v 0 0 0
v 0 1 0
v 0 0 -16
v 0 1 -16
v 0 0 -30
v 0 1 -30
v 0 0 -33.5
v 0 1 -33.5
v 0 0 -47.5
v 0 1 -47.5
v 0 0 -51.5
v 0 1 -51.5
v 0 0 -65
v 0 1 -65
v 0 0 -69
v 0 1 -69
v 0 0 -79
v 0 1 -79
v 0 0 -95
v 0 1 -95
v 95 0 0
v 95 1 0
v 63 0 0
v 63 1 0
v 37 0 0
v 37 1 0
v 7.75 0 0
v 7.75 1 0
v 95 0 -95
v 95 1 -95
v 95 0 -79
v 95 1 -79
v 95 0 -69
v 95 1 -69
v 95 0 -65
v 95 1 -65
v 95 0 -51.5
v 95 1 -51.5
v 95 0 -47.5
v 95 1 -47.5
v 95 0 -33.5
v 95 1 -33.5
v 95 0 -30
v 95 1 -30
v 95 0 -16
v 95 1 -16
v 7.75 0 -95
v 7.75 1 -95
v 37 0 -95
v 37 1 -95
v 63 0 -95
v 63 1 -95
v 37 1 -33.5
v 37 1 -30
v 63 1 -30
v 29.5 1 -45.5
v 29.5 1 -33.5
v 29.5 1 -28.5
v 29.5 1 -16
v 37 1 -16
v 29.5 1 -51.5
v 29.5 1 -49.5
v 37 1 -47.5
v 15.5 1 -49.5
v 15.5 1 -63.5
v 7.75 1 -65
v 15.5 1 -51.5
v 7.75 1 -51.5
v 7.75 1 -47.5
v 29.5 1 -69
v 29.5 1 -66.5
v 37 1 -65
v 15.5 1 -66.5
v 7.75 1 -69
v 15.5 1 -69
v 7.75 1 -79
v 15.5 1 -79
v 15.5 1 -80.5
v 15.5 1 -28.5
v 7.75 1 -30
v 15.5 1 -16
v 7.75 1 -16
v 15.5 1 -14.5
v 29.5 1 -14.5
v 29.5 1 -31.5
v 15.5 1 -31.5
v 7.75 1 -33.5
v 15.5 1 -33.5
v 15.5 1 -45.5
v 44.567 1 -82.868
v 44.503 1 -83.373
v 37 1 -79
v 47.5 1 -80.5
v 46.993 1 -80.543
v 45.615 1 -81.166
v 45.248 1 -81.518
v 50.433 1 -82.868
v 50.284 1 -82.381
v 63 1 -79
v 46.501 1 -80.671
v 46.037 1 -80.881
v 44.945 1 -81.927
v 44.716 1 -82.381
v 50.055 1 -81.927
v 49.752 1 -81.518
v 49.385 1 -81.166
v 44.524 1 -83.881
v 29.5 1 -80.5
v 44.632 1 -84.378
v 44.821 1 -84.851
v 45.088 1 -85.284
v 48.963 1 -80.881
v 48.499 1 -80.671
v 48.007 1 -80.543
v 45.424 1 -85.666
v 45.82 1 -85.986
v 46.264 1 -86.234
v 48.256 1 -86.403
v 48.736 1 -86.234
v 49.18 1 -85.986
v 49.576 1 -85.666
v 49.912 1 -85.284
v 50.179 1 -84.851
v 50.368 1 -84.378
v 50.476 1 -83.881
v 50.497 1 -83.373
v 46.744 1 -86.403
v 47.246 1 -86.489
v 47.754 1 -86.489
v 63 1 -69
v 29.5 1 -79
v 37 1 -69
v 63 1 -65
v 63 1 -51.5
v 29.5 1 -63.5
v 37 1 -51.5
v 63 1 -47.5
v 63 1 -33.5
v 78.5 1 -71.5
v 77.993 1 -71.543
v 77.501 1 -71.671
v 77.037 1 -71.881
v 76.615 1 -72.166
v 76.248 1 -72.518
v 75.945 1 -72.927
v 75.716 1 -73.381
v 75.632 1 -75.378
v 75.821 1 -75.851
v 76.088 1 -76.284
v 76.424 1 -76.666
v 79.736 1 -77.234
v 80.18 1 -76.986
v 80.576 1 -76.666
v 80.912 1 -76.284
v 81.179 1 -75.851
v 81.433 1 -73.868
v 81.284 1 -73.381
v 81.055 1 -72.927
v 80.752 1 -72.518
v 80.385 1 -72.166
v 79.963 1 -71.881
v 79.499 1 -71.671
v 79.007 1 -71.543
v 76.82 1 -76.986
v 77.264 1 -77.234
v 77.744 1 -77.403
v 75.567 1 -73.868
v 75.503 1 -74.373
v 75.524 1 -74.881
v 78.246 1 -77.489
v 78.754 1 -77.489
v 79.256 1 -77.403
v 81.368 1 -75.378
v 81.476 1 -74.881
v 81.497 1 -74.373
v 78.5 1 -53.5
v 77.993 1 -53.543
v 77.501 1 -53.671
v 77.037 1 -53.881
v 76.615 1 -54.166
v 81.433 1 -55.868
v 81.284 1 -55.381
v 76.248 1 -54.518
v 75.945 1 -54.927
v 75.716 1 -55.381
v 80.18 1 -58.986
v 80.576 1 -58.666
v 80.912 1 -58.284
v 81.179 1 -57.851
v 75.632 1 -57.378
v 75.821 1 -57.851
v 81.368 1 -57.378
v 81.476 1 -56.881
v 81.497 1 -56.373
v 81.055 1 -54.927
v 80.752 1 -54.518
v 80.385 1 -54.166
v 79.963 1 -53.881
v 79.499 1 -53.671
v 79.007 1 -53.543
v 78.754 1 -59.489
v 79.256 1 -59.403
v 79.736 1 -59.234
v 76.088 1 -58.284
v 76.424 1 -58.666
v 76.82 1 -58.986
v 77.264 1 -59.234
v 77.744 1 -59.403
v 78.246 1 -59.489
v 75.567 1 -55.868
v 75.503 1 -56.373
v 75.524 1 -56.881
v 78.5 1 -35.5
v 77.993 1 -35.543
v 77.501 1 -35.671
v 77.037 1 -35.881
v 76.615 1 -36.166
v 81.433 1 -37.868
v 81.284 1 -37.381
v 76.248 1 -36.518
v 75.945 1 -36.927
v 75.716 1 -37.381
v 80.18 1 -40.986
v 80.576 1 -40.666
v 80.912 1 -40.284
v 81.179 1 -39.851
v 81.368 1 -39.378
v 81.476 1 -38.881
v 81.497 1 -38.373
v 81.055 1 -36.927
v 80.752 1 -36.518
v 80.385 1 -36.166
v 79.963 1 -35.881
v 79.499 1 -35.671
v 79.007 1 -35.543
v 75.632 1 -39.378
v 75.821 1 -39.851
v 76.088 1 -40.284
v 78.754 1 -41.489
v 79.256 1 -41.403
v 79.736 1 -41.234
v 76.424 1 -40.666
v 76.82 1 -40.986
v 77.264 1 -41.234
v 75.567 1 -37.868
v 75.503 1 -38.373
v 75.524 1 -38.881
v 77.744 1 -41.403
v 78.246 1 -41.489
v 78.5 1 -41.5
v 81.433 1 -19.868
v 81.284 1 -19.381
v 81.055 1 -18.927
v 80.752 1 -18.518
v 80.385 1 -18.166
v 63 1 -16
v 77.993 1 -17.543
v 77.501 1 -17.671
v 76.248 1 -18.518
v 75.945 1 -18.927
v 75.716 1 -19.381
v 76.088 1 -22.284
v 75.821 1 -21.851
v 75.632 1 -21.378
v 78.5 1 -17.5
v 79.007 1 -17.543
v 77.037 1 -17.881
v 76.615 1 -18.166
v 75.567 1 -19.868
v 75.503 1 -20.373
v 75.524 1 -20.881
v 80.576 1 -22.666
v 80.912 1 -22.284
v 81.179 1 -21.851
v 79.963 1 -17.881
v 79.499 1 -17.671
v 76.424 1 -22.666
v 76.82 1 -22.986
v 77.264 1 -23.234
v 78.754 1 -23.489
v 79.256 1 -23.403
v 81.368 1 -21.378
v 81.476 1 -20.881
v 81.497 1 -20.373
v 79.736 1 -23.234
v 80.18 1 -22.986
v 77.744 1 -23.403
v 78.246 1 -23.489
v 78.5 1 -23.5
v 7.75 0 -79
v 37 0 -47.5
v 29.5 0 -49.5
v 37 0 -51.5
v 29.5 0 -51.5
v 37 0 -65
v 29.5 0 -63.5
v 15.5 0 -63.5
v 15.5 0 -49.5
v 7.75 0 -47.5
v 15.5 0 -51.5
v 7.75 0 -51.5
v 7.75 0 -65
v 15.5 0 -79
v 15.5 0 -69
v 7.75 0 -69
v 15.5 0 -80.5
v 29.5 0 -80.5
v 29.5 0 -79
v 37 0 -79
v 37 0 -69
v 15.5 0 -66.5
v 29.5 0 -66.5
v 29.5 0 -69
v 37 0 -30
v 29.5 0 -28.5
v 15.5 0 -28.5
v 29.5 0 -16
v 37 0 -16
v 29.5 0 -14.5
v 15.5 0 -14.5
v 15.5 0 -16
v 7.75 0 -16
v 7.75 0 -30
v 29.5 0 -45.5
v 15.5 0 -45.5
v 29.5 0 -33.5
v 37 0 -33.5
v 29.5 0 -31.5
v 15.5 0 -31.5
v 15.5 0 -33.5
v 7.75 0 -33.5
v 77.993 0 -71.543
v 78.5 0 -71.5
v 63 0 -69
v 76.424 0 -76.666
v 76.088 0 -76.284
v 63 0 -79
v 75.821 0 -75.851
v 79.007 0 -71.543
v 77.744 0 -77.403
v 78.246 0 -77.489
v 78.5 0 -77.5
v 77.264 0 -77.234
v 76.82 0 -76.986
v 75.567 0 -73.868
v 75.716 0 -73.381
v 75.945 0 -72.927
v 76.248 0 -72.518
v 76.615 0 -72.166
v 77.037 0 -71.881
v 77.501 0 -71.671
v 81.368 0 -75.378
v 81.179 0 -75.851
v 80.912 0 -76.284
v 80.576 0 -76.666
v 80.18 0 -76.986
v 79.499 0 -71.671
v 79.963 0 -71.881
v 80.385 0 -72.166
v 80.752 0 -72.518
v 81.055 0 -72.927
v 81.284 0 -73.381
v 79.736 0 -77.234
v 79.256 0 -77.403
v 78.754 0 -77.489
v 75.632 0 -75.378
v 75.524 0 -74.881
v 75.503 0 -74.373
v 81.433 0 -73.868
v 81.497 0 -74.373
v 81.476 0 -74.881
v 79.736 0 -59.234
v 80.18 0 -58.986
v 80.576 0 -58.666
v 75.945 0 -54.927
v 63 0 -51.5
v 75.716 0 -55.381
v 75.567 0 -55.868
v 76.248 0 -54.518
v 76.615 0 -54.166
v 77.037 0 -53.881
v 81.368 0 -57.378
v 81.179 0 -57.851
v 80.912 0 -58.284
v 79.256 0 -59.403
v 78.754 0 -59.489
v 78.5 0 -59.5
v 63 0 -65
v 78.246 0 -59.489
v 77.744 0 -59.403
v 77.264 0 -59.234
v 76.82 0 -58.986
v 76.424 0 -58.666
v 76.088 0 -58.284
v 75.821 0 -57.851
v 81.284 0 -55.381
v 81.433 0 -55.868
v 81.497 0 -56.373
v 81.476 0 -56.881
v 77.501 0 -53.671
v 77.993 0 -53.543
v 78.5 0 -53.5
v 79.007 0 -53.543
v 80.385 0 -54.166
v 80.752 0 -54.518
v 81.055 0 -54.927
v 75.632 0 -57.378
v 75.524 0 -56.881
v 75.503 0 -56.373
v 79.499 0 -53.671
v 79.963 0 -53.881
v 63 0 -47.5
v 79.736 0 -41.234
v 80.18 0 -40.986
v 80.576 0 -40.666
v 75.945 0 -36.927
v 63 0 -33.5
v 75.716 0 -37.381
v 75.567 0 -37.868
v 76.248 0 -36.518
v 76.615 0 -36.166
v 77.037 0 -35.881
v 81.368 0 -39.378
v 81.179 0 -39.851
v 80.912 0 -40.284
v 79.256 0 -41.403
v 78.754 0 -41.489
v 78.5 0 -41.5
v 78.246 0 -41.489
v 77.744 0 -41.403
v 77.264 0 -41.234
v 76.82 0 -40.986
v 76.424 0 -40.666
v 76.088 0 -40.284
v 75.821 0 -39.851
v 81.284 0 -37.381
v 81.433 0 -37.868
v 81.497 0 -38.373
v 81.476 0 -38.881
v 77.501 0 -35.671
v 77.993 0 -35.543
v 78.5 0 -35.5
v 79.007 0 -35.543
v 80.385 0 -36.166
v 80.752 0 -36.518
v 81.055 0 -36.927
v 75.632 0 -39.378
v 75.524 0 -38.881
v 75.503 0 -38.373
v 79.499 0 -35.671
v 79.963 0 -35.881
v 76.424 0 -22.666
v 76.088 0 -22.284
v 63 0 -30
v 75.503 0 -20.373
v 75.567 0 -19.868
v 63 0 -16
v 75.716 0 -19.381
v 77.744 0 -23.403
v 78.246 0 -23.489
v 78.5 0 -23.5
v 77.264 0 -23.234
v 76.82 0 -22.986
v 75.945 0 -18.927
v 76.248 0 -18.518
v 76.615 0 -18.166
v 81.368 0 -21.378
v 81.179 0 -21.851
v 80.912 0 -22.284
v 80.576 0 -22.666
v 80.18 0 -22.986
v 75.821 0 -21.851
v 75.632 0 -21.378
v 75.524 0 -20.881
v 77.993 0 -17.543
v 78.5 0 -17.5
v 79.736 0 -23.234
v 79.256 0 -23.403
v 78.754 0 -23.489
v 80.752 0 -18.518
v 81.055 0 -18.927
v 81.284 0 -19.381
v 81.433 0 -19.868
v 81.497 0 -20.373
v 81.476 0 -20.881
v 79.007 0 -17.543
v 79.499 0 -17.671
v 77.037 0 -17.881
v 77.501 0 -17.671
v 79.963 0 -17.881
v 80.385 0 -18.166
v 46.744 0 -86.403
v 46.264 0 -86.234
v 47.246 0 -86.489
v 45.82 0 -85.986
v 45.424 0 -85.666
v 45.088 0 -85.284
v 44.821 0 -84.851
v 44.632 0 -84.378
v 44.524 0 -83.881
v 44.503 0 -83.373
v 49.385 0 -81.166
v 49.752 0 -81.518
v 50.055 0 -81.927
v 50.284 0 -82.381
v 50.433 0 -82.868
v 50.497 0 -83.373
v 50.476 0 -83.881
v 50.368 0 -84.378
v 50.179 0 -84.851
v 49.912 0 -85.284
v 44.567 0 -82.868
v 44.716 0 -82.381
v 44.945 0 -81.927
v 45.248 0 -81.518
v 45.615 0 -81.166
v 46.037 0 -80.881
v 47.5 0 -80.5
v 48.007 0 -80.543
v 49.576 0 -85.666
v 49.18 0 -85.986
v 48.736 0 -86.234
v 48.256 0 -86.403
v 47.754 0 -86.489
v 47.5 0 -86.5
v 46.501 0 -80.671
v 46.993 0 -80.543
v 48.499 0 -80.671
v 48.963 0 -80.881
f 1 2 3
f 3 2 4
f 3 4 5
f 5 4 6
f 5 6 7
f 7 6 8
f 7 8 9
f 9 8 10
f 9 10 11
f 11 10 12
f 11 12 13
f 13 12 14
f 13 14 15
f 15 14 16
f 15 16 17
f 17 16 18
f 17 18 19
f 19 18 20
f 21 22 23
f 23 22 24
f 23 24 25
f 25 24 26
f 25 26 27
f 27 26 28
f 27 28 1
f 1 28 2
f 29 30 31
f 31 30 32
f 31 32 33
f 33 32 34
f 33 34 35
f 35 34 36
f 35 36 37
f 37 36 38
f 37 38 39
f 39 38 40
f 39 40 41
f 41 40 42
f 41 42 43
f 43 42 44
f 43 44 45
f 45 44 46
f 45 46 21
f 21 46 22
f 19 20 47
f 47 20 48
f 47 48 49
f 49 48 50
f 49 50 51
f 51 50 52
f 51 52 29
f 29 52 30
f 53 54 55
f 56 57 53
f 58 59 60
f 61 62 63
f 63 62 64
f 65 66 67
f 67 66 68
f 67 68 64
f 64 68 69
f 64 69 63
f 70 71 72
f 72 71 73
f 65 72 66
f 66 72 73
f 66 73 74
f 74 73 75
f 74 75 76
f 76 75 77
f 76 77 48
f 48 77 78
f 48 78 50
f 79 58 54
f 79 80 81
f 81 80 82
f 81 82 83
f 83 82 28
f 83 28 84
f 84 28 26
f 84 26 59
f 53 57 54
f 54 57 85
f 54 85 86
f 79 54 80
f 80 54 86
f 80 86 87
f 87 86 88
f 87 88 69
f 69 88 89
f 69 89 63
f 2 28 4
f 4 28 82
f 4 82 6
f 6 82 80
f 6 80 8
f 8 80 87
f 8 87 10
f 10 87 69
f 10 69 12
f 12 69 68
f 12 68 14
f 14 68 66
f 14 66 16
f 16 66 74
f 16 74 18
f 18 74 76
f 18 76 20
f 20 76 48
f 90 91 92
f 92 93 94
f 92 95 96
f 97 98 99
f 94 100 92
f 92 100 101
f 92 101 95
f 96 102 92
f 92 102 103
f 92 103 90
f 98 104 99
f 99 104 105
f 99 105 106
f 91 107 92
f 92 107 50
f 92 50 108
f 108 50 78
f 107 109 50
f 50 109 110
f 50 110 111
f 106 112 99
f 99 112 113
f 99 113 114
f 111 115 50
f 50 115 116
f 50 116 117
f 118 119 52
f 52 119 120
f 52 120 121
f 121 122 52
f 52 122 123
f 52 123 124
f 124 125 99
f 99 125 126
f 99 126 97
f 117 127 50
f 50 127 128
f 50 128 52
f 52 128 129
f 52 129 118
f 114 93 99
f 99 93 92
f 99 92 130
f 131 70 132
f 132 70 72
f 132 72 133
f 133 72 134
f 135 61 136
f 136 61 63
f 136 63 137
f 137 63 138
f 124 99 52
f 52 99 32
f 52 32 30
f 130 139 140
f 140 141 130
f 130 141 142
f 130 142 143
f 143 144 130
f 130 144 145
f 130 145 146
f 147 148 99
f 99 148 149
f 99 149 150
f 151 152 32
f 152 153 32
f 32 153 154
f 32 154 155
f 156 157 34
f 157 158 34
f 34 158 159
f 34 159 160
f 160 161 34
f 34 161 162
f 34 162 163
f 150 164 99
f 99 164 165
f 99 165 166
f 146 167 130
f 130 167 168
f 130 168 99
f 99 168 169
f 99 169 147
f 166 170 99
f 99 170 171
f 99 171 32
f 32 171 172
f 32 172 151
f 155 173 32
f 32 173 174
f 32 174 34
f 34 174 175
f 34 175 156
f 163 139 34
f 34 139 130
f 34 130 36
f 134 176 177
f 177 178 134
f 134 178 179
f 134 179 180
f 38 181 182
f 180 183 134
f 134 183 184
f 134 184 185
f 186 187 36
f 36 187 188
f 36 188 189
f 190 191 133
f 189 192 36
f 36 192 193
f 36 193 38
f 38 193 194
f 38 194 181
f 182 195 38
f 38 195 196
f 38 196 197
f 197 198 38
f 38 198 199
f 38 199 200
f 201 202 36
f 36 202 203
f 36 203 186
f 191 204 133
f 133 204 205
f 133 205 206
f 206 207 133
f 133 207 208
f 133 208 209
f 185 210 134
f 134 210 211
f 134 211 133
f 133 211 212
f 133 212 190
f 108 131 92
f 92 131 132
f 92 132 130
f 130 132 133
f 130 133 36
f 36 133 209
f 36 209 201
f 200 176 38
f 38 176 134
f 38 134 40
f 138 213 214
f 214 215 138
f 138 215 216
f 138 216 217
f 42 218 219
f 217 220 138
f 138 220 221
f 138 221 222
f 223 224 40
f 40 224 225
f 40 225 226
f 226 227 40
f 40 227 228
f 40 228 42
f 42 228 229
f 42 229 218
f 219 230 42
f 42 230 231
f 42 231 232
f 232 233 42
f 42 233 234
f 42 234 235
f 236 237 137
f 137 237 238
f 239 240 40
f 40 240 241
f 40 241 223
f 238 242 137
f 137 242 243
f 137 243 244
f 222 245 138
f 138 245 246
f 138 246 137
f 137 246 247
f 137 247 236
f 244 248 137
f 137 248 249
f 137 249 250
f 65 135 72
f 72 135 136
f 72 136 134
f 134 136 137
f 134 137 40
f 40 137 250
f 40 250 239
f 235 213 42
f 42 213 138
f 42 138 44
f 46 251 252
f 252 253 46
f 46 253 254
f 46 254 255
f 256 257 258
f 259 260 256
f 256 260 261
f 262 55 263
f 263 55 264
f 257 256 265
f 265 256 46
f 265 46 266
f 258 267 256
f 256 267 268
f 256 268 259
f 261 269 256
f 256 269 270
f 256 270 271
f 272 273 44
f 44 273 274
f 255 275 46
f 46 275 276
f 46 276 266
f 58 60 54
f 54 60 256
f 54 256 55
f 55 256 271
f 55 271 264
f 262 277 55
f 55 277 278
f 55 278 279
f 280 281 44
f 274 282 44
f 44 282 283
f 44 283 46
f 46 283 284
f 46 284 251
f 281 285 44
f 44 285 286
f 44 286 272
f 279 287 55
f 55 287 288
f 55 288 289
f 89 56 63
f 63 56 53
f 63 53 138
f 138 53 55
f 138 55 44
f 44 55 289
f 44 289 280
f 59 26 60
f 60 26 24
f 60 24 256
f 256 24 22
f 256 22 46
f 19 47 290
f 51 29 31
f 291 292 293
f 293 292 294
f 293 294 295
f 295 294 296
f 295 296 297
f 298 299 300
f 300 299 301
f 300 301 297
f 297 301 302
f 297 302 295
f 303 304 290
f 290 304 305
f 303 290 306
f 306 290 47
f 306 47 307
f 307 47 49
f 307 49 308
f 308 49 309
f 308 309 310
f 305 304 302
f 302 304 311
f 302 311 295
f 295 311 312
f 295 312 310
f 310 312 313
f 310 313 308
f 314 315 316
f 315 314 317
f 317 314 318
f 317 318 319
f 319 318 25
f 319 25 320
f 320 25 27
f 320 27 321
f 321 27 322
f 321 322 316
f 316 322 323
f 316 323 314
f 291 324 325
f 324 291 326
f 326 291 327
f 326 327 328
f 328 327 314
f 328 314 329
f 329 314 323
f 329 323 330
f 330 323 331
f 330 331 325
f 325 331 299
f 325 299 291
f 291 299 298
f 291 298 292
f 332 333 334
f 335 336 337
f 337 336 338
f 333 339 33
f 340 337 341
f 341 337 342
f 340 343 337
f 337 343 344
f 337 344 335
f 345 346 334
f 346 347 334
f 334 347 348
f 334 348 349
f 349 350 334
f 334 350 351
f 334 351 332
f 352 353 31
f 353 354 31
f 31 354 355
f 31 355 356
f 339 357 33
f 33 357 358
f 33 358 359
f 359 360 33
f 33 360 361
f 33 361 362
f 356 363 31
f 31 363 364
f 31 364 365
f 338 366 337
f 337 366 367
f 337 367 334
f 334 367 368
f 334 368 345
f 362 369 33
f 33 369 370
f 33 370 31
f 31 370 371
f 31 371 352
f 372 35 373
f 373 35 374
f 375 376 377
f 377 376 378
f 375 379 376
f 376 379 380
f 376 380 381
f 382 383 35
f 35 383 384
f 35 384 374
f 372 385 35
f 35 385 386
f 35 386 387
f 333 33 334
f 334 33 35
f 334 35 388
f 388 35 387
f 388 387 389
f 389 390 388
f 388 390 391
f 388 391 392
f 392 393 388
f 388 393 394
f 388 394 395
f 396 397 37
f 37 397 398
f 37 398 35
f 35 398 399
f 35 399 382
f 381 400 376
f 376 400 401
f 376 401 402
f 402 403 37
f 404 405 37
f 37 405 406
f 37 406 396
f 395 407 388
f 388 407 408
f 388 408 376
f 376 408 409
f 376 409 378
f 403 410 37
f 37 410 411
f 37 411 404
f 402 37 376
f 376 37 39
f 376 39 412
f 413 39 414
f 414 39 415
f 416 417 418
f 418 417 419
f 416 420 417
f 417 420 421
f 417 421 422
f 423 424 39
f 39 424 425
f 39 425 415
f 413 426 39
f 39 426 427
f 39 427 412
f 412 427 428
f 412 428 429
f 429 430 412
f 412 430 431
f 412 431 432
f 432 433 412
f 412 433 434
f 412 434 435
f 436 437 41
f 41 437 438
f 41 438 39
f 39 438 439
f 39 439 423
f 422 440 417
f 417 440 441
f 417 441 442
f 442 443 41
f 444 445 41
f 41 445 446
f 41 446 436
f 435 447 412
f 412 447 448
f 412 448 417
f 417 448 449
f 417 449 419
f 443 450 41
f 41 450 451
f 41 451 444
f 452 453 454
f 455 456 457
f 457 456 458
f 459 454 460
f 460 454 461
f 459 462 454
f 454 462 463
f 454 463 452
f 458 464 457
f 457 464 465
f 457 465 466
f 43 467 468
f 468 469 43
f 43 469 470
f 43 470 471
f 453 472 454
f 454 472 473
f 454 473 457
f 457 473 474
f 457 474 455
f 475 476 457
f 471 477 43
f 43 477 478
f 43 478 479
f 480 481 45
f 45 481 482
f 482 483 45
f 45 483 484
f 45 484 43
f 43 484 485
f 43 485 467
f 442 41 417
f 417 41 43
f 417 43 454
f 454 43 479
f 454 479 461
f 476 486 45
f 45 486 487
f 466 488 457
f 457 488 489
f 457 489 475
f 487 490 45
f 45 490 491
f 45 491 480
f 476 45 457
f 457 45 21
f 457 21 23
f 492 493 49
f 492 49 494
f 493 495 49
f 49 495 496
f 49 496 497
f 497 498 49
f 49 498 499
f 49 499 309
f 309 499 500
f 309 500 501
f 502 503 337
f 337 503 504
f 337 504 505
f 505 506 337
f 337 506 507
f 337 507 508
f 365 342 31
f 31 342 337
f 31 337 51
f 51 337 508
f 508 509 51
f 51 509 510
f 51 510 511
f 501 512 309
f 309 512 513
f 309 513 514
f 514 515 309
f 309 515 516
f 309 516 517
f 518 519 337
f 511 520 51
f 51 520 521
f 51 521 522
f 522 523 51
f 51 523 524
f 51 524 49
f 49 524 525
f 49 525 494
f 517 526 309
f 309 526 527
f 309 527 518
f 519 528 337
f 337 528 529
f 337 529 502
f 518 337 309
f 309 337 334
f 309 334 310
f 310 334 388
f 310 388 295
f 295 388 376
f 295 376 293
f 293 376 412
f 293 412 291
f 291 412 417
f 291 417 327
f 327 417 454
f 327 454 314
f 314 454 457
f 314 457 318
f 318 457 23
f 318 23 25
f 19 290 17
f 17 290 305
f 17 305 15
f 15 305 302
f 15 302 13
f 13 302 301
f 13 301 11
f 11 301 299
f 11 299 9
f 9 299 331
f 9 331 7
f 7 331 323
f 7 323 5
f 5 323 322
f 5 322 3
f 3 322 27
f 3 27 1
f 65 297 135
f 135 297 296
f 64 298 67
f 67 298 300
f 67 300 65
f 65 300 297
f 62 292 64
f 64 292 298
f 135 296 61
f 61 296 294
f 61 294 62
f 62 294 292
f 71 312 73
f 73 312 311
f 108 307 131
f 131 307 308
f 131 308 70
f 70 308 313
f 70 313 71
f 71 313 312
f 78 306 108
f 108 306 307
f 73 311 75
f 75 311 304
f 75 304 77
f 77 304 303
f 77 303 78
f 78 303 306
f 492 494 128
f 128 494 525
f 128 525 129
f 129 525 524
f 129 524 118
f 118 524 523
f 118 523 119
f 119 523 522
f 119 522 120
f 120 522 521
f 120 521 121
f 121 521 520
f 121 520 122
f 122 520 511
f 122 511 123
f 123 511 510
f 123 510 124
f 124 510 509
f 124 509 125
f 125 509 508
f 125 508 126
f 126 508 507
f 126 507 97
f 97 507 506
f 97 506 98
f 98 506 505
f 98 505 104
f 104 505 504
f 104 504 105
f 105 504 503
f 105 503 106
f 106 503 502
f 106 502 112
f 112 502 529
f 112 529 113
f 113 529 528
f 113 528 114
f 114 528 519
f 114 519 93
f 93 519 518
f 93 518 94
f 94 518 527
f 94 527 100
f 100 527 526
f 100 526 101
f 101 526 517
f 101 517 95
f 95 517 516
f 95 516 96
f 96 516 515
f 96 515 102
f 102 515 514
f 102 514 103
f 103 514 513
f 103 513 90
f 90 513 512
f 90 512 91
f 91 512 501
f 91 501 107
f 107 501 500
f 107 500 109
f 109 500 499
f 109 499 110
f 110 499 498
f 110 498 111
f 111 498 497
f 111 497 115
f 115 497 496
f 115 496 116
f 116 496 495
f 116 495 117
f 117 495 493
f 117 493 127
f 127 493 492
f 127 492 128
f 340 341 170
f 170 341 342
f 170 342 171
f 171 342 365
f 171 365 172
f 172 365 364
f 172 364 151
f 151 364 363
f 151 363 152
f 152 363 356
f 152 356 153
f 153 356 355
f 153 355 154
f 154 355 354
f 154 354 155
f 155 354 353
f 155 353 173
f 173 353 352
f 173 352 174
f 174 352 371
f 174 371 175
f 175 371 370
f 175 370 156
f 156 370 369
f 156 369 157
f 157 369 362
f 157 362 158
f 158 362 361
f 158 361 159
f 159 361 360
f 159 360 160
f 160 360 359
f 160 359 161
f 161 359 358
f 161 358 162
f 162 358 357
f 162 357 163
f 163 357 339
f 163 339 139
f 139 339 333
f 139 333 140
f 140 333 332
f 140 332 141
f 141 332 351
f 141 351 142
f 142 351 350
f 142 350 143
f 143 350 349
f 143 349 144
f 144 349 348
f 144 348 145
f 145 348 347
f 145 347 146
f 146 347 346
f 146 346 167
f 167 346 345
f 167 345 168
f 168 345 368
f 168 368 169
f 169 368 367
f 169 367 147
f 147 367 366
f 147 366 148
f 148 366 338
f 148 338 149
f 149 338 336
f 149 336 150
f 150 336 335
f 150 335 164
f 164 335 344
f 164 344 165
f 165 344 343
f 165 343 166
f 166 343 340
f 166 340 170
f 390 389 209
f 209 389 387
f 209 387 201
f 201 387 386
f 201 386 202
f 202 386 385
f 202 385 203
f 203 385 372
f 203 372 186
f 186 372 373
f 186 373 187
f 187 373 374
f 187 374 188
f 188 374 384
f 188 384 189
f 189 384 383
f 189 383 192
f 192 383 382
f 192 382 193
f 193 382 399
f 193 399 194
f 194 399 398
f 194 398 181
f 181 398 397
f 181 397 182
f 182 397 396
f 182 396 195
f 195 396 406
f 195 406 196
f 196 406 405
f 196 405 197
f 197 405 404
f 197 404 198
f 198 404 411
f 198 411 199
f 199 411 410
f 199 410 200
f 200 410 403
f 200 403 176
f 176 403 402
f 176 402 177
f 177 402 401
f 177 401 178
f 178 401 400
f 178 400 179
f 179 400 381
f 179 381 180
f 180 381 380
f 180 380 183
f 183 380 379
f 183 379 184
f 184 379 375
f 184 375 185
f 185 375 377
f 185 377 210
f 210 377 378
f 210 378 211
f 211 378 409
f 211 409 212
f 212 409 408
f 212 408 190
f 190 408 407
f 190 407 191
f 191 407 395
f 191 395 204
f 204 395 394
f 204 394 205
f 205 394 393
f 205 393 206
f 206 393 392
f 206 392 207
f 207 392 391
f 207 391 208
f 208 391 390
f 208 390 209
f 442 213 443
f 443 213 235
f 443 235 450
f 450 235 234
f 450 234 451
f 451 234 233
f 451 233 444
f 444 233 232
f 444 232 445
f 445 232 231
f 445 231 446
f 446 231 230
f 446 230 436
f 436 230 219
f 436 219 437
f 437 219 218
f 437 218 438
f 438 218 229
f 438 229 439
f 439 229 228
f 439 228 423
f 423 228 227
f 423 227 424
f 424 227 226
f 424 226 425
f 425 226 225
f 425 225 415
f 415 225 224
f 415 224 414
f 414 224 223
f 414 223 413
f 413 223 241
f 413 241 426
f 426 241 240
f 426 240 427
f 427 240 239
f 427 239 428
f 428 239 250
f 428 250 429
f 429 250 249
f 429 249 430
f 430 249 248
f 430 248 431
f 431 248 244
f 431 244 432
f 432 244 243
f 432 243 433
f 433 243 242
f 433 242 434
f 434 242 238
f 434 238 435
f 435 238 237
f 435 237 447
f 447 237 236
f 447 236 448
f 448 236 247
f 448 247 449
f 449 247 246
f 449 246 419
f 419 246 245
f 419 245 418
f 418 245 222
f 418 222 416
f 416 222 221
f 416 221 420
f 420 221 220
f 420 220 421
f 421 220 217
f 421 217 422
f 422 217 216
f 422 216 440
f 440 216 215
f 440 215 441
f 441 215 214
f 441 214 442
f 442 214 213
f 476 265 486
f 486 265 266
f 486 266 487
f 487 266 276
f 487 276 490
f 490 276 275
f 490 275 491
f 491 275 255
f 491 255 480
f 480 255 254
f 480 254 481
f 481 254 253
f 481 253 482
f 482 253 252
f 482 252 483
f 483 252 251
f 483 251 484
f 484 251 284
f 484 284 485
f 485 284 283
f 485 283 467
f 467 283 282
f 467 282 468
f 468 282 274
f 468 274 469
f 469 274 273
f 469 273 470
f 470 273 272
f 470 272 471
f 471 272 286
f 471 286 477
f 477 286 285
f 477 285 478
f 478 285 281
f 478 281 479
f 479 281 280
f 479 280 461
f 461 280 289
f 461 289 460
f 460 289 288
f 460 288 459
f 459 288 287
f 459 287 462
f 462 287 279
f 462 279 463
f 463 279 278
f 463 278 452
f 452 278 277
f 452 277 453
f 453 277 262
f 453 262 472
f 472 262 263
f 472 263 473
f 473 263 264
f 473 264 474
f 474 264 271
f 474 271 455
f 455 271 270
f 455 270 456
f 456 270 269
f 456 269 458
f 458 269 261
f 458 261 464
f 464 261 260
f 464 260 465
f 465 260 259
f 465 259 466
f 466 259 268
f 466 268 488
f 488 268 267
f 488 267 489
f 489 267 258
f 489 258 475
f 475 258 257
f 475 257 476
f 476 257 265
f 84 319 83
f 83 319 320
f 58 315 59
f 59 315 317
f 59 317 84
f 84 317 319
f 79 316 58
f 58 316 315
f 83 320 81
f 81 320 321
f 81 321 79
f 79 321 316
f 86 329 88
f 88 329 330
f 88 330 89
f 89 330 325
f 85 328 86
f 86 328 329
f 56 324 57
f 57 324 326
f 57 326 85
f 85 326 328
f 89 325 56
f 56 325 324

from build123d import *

# Parameters (mm, degrees)
SKETCH1_W           = 95
SKETCH1_H           = 95
BOSS_EXTRUDE1_DEPTH = 1
SKETCH2_R           = 3
SKETCH2_W           = 14
SKETCH2_H           = 14
CUT_EXTRUDE1_DEPTH  = 1


with BuildPart() as part:
    # Sketch1 → Boss-Extrude1 (new body)
    with BuildSketch(Plane(origin=(0, 0, 0), x_dir=(1, 0, 0), z_dir=(0, 1, 0))):
        with Locations((47.5, 47.5)):
            Rectangle(SKETCH1_W, SKETCH1_H)
    extrude(amount=BOSS_EXTRUDE1_DEPTH)

    # Sketch2 → Cut-Extrude1 (cut)
    with BuildSketch(Plane(origin=(0, 1, 0), x_dir=(1, 0, 0), z_dir=(0, 1, 0))):
        with Locations(Location((47.5, 83.5, 0), (0, 0, 270))):
            Circle(SKETCH2_R)
        with Locations(Location((78.5, 74.5, 0), (0, 0, 270))):
            Circle(SKETCH2_R)
        with Locations(Location((78.5, 56.5, 0), (0, 0, 270))):
            Circle(SKETCH2_R)
        with Locations(Location((78.5, 38.5, 0), (0, 0, 90))):
            Circle(SKETCH2_R)
        with Locations(Location((78.5, 20.5, 0), (0, 0, 90))):
            Circle(SKETCH2_R)
        with Locations((22.5, 56.5)):
            Rectangle(SKETCH2_W, SKETCH2_H)
        with Locations((22.5, 73.5)):
            Rectangle(SKETCH2_W, SKETCH2_H)
        with Locations((22.5, 21.5)):
            Rectangle(SKETCH2_W, SKETCH2_H)
        with Locations((22.5, 38.5)):
            Rectangle(SKETCH2_W, SKETCH2_H)
    extrude(amount=-CUT_EXTRUDE1_DEPTH, mode=Mode.SUBTRACT)


solid = part.part
